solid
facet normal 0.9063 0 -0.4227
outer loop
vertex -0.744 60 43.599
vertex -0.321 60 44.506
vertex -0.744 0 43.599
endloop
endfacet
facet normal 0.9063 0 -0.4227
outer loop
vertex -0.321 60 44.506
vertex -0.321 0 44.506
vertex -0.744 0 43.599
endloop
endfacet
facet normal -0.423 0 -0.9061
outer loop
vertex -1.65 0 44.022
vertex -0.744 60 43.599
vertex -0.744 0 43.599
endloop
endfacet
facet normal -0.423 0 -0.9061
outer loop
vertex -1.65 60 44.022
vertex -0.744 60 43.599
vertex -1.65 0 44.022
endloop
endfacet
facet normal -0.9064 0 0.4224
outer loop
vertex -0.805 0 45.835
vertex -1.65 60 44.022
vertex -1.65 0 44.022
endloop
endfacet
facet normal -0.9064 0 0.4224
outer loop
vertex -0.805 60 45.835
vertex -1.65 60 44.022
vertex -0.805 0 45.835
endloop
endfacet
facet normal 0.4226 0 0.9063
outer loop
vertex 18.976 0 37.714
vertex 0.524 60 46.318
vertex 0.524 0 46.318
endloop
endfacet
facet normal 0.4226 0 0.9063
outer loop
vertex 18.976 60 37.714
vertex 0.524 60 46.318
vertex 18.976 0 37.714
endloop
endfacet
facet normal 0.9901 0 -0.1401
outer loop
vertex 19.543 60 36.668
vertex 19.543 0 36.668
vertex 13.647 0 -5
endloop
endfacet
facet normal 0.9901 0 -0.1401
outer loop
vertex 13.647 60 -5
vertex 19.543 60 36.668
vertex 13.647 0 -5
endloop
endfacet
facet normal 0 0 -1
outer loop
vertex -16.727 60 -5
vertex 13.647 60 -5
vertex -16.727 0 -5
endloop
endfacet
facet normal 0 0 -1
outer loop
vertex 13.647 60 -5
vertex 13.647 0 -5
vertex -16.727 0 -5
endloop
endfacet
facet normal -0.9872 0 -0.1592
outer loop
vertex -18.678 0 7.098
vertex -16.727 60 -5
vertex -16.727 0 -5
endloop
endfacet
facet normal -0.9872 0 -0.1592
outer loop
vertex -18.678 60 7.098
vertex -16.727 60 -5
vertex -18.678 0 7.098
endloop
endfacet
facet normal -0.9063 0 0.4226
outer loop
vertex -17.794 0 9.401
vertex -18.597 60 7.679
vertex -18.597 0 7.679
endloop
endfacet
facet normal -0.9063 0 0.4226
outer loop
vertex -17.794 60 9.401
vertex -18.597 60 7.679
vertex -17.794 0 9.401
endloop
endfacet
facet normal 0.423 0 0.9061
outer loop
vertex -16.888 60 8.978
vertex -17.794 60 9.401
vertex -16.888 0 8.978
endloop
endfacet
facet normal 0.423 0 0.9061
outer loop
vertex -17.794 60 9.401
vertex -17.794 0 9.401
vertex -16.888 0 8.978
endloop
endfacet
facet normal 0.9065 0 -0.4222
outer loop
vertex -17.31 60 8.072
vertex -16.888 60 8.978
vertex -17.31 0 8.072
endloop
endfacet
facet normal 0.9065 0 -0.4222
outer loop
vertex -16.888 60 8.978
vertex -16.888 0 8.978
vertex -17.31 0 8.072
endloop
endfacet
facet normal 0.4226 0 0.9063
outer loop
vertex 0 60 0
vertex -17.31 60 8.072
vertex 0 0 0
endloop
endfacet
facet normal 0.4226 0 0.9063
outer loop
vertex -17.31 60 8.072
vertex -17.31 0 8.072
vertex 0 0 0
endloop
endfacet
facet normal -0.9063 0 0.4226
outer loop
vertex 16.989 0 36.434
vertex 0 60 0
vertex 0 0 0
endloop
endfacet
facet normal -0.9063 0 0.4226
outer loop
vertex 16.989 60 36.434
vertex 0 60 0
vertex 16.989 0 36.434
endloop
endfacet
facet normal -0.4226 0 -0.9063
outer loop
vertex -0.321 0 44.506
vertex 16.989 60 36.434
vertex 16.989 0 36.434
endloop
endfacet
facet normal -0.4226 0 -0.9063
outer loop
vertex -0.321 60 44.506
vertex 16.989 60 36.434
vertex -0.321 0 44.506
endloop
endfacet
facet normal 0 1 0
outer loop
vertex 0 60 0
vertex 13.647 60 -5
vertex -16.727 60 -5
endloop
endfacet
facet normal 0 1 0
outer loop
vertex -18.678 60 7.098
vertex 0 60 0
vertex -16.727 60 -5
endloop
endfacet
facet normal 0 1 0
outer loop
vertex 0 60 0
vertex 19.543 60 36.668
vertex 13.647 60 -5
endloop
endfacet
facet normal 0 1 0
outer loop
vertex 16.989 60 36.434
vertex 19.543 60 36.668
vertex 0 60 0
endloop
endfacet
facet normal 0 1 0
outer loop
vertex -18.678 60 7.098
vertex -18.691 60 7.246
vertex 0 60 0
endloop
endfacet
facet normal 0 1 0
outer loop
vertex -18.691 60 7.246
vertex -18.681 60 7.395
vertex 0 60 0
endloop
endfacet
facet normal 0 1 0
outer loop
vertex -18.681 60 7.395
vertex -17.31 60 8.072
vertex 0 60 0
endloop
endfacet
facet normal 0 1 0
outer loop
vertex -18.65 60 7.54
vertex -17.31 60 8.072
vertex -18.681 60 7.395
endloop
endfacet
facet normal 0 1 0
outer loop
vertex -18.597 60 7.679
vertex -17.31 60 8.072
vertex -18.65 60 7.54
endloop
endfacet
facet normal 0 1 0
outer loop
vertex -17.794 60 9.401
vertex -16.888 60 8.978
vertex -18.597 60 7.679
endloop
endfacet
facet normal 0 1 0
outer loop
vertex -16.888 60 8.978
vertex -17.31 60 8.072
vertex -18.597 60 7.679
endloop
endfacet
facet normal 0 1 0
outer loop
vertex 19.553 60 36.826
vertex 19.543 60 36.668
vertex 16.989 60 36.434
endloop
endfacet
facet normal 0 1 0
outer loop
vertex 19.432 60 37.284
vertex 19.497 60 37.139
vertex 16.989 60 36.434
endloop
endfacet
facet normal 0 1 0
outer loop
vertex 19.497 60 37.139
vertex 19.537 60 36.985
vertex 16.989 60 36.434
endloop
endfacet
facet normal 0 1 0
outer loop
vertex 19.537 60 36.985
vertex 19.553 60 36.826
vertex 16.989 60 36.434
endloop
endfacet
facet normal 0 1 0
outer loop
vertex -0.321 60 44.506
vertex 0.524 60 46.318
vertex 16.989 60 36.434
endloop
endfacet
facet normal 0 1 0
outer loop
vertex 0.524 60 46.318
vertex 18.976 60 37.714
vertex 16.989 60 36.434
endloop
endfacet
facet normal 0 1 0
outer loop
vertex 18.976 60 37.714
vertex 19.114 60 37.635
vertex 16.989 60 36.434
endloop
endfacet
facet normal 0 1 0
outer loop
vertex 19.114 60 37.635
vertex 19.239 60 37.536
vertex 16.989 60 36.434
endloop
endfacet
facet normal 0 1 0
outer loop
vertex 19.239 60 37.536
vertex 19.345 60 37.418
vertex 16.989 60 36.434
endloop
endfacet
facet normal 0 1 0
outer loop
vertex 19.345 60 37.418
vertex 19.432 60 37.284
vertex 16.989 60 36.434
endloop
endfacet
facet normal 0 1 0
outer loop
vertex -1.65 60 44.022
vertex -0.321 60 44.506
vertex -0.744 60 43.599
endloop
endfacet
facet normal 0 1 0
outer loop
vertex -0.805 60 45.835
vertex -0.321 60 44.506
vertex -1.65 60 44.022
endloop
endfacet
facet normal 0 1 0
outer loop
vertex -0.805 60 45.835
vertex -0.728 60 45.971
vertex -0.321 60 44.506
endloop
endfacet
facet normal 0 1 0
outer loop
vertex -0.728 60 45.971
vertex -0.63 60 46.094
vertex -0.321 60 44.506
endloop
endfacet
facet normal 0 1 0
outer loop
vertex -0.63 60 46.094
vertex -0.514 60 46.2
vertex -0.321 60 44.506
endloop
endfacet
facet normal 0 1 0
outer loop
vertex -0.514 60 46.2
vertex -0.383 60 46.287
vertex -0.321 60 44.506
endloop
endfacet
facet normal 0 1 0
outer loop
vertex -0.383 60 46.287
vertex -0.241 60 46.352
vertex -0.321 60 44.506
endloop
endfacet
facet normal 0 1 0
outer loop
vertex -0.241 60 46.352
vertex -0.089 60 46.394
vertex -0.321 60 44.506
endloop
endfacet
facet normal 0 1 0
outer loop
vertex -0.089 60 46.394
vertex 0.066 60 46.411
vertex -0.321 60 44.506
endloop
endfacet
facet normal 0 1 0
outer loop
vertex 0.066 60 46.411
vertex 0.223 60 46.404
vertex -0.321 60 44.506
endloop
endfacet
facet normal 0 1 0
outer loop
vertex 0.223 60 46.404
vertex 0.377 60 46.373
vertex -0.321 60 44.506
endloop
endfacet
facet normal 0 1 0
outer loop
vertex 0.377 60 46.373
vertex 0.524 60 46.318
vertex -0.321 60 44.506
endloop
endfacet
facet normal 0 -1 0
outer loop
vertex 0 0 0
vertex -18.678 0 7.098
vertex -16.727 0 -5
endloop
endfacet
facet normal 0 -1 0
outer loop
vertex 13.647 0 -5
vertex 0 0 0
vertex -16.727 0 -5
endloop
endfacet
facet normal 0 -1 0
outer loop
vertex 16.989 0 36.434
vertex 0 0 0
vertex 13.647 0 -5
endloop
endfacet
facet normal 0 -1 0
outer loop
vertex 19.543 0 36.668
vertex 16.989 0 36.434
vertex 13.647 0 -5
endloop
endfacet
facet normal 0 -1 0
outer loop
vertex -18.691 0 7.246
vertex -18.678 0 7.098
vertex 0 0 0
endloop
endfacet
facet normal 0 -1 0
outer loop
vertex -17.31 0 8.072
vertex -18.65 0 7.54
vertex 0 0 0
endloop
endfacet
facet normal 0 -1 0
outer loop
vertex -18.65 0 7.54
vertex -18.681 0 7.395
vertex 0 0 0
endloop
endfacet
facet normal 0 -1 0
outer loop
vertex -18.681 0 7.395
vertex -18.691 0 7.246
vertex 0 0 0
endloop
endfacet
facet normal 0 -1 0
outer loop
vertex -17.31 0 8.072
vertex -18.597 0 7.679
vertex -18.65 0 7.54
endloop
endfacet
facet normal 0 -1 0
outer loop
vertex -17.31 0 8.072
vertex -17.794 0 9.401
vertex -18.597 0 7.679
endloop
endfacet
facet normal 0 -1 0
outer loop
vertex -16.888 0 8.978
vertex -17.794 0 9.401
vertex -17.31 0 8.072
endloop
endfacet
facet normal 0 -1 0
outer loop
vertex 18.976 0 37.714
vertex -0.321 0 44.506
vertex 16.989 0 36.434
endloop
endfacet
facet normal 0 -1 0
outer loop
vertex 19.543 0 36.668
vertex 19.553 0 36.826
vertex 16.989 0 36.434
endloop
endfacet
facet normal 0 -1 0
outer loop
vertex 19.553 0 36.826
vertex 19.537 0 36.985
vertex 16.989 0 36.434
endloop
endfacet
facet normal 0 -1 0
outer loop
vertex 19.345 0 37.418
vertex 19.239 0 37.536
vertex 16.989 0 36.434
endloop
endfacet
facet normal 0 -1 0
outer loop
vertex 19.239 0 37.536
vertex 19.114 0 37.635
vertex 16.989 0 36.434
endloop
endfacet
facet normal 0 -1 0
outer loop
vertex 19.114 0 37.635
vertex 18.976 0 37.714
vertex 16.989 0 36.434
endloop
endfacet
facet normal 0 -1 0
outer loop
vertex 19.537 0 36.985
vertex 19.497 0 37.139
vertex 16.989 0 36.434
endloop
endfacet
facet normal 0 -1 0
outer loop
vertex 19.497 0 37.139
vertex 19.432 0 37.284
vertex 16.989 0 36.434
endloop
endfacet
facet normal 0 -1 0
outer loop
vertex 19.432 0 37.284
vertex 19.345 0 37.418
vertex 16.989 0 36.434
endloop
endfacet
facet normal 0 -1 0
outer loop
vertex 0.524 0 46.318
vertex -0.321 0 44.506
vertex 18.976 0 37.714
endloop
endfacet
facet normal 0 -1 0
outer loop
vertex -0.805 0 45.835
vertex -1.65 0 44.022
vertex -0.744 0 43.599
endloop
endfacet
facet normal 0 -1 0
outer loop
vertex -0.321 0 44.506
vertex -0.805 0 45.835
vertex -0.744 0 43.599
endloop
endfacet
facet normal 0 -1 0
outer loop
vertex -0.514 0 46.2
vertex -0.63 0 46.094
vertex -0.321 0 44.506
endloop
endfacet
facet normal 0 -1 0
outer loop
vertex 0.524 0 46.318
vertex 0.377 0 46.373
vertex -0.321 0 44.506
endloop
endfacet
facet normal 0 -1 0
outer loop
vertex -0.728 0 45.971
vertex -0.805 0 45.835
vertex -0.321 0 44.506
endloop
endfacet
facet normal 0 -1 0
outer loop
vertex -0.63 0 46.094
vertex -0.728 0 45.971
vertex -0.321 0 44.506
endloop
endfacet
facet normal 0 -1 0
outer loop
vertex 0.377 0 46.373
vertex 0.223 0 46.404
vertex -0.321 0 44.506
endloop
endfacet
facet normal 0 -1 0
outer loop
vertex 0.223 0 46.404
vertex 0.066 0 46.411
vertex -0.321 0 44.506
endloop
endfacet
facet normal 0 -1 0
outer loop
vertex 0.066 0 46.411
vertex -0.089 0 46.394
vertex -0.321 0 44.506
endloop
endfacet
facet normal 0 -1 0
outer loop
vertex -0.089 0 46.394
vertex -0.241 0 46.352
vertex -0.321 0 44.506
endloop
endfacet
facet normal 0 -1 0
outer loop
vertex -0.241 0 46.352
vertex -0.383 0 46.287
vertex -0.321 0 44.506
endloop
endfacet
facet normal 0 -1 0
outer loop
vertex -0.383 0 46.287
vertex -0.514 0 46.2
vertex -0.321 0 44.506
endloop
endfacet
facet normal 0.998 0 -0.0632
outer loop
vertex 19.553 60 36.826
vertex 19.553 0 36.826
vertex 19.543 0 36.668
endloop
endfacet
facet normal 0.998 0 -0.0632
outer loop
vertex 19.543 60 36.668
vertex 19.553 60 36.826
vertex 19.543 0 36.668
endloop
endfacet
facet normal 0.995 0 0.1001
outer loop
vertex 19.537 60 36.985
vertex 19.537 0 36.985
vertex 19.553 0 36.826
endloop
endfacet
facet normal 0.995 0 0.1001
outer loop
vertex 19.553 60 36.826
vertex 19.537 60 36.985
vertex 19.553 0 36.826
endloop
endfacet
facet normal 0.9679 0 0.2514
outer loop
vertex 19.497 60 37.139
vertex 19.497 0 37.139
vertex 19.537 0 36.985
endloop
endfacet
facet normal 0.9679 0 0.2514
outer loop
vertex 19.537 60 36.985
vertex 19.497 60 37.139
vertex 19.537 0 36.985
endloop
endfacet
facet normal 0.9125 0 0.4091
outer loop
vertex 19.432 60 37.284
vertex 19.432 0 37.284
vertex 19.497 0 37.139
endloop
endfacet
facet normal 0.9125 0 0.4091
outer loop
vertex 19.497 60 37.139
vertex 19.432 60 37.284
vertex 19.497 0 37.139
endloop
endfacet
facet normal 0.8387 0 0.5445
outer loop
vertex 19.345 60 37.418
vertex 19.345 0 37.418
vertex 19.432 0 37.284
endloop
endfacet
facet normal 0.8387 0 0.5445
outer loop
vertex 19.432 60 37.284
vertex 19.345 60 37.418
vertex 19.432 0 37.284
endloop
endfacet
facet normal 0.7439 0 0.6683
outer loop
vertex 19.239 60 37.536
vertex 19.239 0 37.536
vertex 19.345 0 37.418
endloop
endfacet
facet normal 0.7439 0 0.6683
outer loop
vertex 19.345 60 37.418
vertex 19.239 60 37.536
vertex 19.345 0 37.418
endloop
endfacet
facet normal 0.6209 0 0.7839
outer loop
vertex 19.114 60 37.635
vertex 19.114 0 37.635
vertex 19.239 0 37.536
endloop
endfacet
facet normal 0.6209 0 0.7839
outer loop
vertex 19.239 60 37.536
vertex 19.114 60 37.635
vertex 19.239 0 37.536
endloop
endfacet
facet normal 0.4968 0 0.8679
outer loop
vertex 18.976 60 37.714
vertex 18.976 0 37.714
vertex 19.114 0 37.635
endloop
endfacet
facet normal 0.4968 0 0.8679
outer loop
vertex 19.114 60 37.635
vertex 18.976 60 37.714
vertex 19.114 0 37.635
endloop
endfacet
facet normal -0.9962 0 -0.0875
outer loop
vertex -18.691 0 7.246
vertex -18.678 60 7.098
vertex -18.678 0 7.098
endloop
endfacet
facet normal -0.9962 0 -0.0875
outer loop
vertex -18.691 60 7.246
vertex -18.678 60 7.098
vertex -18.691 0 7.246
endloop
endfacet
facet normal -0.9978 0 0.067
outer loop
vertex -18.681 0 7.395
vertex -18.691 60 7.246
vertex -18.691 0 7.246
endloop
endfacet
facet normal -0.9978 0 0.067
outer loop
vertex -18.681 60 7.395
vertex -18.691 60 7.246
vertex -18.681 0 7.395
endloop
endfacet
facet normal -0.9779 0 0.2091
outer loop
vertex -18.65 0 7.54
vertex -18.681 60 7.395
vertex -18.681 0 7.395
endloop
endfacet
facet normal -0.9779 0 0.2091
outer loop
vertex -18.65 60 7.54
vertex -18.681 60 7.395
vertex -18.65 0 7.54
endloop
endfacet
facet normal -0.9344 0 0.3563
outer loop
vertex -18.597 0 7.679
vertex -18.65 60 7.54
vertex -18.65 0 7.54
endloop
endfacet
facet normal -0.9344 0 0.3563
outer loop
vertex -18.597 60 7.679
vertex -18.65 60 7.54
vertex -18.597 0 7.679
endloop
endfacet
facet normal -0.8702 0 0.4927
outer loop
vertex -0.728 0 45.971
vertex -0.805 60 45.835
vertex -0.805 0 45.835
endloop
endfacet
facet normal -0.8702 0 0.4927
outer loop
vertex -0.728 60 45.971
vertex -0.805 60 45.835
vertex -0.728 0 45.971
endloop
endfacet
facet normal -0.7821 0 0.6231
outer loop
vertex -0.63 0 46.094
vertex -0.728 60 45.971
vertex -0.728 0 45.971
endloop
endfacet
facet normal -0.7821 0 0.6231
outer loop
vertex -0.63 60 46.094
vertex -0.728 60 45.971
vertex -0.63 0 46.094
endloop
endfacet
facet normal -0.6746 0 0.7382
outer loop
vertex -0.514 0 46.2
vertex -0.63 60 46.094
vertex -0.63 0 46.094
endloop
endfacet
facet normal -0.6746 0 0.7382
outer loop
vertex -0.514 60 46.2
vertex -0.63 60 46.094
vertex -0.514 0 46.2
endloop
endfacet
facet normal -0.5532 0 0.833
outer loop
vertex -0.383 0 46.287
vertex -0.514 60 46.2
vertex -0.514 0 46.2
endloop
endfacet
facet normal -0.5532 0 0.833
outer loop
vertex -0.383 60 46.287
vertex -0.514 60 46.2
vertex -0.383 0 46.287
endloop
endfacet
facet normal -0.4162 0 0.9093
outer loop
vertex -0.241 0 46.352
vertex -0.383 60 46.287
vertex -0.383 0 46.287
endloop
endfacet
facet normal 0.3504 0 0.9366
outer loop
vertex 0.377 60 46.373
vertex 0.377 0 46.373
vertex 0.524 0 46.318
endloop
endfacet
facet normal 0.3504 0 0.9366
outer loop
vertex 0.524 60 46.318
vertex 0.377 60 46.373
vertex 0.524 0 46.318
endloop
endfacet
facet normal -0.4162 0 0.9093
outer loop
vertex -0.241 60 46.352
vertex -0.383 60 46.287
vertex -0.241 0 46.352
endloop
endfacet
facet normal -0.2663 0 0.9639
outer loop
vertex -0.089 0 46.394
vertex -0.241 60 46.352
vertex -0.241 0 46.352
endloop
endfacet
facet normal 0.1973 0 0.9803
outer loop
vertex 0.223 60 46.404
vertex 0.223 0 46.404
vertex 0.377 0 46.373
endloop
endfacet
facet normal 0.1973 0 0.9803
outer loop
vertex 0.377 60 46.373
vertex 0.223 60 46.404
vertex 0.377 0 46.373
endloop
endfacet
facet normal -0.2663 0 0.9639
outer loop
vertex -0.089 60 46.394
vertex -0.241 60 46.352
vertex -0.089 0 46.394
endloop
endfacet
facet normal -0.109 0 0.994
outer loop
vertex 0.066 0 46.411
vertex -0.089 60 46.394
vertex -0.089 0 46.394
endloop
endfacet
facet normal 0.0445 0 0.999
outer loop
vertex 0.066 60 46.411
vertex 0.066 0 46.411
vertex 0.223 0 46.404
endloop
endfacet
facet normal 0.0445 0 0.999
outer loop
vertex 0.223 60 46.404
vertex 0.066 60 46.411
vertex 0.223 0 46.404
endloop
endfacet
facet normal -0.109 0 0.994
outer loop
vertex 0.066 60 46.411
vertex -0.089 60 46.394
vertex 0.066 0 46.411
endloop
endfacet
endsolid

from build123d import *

# Parameters (mm, degrees)
BOSS_EXTRUDE1_DEPTH = 60
FILLET1_R           = 1


with BuildPart() as part:
    # Sketch2 → Boss-Extrude1 (new body)
    with BuildSketch(Plane(origin=(0, 0, 0), x_dir=(-1, 0, 0), z_dir=(0, 1, 0))):
        Polygon((0.743842872, 43.599274051), (1.650150659, 44.021892313), (0.382295874, 46.740815674), (-19.647106212, 37.400952093), (-13.647106212, -5), (16.726783574, -5), (18.726783574, 7.400934848), (17.794168258, 9.400934848), (16.887860471, 8.978316586), (17.310478732, 8.072008799), (0, 0), (-16.989254122, 36.433573039), (0.32122461, 44.505581838), align=None)
    extrude(amount=BOSS_EXTRUDE1_DEPTH)

    # Fillet1
    fillet1_edges = [part.edges().sort_by_distance(p)[0] for p in [
        (-18.726783574, 30, 7.400934848),
        (19.647106212, 30, 37.400952093),
        (-0.382295874, 30, 46.740815674),
    ]]
    fillet(fillet1_edges, radius=FILLET1_R)


solid = part.part
